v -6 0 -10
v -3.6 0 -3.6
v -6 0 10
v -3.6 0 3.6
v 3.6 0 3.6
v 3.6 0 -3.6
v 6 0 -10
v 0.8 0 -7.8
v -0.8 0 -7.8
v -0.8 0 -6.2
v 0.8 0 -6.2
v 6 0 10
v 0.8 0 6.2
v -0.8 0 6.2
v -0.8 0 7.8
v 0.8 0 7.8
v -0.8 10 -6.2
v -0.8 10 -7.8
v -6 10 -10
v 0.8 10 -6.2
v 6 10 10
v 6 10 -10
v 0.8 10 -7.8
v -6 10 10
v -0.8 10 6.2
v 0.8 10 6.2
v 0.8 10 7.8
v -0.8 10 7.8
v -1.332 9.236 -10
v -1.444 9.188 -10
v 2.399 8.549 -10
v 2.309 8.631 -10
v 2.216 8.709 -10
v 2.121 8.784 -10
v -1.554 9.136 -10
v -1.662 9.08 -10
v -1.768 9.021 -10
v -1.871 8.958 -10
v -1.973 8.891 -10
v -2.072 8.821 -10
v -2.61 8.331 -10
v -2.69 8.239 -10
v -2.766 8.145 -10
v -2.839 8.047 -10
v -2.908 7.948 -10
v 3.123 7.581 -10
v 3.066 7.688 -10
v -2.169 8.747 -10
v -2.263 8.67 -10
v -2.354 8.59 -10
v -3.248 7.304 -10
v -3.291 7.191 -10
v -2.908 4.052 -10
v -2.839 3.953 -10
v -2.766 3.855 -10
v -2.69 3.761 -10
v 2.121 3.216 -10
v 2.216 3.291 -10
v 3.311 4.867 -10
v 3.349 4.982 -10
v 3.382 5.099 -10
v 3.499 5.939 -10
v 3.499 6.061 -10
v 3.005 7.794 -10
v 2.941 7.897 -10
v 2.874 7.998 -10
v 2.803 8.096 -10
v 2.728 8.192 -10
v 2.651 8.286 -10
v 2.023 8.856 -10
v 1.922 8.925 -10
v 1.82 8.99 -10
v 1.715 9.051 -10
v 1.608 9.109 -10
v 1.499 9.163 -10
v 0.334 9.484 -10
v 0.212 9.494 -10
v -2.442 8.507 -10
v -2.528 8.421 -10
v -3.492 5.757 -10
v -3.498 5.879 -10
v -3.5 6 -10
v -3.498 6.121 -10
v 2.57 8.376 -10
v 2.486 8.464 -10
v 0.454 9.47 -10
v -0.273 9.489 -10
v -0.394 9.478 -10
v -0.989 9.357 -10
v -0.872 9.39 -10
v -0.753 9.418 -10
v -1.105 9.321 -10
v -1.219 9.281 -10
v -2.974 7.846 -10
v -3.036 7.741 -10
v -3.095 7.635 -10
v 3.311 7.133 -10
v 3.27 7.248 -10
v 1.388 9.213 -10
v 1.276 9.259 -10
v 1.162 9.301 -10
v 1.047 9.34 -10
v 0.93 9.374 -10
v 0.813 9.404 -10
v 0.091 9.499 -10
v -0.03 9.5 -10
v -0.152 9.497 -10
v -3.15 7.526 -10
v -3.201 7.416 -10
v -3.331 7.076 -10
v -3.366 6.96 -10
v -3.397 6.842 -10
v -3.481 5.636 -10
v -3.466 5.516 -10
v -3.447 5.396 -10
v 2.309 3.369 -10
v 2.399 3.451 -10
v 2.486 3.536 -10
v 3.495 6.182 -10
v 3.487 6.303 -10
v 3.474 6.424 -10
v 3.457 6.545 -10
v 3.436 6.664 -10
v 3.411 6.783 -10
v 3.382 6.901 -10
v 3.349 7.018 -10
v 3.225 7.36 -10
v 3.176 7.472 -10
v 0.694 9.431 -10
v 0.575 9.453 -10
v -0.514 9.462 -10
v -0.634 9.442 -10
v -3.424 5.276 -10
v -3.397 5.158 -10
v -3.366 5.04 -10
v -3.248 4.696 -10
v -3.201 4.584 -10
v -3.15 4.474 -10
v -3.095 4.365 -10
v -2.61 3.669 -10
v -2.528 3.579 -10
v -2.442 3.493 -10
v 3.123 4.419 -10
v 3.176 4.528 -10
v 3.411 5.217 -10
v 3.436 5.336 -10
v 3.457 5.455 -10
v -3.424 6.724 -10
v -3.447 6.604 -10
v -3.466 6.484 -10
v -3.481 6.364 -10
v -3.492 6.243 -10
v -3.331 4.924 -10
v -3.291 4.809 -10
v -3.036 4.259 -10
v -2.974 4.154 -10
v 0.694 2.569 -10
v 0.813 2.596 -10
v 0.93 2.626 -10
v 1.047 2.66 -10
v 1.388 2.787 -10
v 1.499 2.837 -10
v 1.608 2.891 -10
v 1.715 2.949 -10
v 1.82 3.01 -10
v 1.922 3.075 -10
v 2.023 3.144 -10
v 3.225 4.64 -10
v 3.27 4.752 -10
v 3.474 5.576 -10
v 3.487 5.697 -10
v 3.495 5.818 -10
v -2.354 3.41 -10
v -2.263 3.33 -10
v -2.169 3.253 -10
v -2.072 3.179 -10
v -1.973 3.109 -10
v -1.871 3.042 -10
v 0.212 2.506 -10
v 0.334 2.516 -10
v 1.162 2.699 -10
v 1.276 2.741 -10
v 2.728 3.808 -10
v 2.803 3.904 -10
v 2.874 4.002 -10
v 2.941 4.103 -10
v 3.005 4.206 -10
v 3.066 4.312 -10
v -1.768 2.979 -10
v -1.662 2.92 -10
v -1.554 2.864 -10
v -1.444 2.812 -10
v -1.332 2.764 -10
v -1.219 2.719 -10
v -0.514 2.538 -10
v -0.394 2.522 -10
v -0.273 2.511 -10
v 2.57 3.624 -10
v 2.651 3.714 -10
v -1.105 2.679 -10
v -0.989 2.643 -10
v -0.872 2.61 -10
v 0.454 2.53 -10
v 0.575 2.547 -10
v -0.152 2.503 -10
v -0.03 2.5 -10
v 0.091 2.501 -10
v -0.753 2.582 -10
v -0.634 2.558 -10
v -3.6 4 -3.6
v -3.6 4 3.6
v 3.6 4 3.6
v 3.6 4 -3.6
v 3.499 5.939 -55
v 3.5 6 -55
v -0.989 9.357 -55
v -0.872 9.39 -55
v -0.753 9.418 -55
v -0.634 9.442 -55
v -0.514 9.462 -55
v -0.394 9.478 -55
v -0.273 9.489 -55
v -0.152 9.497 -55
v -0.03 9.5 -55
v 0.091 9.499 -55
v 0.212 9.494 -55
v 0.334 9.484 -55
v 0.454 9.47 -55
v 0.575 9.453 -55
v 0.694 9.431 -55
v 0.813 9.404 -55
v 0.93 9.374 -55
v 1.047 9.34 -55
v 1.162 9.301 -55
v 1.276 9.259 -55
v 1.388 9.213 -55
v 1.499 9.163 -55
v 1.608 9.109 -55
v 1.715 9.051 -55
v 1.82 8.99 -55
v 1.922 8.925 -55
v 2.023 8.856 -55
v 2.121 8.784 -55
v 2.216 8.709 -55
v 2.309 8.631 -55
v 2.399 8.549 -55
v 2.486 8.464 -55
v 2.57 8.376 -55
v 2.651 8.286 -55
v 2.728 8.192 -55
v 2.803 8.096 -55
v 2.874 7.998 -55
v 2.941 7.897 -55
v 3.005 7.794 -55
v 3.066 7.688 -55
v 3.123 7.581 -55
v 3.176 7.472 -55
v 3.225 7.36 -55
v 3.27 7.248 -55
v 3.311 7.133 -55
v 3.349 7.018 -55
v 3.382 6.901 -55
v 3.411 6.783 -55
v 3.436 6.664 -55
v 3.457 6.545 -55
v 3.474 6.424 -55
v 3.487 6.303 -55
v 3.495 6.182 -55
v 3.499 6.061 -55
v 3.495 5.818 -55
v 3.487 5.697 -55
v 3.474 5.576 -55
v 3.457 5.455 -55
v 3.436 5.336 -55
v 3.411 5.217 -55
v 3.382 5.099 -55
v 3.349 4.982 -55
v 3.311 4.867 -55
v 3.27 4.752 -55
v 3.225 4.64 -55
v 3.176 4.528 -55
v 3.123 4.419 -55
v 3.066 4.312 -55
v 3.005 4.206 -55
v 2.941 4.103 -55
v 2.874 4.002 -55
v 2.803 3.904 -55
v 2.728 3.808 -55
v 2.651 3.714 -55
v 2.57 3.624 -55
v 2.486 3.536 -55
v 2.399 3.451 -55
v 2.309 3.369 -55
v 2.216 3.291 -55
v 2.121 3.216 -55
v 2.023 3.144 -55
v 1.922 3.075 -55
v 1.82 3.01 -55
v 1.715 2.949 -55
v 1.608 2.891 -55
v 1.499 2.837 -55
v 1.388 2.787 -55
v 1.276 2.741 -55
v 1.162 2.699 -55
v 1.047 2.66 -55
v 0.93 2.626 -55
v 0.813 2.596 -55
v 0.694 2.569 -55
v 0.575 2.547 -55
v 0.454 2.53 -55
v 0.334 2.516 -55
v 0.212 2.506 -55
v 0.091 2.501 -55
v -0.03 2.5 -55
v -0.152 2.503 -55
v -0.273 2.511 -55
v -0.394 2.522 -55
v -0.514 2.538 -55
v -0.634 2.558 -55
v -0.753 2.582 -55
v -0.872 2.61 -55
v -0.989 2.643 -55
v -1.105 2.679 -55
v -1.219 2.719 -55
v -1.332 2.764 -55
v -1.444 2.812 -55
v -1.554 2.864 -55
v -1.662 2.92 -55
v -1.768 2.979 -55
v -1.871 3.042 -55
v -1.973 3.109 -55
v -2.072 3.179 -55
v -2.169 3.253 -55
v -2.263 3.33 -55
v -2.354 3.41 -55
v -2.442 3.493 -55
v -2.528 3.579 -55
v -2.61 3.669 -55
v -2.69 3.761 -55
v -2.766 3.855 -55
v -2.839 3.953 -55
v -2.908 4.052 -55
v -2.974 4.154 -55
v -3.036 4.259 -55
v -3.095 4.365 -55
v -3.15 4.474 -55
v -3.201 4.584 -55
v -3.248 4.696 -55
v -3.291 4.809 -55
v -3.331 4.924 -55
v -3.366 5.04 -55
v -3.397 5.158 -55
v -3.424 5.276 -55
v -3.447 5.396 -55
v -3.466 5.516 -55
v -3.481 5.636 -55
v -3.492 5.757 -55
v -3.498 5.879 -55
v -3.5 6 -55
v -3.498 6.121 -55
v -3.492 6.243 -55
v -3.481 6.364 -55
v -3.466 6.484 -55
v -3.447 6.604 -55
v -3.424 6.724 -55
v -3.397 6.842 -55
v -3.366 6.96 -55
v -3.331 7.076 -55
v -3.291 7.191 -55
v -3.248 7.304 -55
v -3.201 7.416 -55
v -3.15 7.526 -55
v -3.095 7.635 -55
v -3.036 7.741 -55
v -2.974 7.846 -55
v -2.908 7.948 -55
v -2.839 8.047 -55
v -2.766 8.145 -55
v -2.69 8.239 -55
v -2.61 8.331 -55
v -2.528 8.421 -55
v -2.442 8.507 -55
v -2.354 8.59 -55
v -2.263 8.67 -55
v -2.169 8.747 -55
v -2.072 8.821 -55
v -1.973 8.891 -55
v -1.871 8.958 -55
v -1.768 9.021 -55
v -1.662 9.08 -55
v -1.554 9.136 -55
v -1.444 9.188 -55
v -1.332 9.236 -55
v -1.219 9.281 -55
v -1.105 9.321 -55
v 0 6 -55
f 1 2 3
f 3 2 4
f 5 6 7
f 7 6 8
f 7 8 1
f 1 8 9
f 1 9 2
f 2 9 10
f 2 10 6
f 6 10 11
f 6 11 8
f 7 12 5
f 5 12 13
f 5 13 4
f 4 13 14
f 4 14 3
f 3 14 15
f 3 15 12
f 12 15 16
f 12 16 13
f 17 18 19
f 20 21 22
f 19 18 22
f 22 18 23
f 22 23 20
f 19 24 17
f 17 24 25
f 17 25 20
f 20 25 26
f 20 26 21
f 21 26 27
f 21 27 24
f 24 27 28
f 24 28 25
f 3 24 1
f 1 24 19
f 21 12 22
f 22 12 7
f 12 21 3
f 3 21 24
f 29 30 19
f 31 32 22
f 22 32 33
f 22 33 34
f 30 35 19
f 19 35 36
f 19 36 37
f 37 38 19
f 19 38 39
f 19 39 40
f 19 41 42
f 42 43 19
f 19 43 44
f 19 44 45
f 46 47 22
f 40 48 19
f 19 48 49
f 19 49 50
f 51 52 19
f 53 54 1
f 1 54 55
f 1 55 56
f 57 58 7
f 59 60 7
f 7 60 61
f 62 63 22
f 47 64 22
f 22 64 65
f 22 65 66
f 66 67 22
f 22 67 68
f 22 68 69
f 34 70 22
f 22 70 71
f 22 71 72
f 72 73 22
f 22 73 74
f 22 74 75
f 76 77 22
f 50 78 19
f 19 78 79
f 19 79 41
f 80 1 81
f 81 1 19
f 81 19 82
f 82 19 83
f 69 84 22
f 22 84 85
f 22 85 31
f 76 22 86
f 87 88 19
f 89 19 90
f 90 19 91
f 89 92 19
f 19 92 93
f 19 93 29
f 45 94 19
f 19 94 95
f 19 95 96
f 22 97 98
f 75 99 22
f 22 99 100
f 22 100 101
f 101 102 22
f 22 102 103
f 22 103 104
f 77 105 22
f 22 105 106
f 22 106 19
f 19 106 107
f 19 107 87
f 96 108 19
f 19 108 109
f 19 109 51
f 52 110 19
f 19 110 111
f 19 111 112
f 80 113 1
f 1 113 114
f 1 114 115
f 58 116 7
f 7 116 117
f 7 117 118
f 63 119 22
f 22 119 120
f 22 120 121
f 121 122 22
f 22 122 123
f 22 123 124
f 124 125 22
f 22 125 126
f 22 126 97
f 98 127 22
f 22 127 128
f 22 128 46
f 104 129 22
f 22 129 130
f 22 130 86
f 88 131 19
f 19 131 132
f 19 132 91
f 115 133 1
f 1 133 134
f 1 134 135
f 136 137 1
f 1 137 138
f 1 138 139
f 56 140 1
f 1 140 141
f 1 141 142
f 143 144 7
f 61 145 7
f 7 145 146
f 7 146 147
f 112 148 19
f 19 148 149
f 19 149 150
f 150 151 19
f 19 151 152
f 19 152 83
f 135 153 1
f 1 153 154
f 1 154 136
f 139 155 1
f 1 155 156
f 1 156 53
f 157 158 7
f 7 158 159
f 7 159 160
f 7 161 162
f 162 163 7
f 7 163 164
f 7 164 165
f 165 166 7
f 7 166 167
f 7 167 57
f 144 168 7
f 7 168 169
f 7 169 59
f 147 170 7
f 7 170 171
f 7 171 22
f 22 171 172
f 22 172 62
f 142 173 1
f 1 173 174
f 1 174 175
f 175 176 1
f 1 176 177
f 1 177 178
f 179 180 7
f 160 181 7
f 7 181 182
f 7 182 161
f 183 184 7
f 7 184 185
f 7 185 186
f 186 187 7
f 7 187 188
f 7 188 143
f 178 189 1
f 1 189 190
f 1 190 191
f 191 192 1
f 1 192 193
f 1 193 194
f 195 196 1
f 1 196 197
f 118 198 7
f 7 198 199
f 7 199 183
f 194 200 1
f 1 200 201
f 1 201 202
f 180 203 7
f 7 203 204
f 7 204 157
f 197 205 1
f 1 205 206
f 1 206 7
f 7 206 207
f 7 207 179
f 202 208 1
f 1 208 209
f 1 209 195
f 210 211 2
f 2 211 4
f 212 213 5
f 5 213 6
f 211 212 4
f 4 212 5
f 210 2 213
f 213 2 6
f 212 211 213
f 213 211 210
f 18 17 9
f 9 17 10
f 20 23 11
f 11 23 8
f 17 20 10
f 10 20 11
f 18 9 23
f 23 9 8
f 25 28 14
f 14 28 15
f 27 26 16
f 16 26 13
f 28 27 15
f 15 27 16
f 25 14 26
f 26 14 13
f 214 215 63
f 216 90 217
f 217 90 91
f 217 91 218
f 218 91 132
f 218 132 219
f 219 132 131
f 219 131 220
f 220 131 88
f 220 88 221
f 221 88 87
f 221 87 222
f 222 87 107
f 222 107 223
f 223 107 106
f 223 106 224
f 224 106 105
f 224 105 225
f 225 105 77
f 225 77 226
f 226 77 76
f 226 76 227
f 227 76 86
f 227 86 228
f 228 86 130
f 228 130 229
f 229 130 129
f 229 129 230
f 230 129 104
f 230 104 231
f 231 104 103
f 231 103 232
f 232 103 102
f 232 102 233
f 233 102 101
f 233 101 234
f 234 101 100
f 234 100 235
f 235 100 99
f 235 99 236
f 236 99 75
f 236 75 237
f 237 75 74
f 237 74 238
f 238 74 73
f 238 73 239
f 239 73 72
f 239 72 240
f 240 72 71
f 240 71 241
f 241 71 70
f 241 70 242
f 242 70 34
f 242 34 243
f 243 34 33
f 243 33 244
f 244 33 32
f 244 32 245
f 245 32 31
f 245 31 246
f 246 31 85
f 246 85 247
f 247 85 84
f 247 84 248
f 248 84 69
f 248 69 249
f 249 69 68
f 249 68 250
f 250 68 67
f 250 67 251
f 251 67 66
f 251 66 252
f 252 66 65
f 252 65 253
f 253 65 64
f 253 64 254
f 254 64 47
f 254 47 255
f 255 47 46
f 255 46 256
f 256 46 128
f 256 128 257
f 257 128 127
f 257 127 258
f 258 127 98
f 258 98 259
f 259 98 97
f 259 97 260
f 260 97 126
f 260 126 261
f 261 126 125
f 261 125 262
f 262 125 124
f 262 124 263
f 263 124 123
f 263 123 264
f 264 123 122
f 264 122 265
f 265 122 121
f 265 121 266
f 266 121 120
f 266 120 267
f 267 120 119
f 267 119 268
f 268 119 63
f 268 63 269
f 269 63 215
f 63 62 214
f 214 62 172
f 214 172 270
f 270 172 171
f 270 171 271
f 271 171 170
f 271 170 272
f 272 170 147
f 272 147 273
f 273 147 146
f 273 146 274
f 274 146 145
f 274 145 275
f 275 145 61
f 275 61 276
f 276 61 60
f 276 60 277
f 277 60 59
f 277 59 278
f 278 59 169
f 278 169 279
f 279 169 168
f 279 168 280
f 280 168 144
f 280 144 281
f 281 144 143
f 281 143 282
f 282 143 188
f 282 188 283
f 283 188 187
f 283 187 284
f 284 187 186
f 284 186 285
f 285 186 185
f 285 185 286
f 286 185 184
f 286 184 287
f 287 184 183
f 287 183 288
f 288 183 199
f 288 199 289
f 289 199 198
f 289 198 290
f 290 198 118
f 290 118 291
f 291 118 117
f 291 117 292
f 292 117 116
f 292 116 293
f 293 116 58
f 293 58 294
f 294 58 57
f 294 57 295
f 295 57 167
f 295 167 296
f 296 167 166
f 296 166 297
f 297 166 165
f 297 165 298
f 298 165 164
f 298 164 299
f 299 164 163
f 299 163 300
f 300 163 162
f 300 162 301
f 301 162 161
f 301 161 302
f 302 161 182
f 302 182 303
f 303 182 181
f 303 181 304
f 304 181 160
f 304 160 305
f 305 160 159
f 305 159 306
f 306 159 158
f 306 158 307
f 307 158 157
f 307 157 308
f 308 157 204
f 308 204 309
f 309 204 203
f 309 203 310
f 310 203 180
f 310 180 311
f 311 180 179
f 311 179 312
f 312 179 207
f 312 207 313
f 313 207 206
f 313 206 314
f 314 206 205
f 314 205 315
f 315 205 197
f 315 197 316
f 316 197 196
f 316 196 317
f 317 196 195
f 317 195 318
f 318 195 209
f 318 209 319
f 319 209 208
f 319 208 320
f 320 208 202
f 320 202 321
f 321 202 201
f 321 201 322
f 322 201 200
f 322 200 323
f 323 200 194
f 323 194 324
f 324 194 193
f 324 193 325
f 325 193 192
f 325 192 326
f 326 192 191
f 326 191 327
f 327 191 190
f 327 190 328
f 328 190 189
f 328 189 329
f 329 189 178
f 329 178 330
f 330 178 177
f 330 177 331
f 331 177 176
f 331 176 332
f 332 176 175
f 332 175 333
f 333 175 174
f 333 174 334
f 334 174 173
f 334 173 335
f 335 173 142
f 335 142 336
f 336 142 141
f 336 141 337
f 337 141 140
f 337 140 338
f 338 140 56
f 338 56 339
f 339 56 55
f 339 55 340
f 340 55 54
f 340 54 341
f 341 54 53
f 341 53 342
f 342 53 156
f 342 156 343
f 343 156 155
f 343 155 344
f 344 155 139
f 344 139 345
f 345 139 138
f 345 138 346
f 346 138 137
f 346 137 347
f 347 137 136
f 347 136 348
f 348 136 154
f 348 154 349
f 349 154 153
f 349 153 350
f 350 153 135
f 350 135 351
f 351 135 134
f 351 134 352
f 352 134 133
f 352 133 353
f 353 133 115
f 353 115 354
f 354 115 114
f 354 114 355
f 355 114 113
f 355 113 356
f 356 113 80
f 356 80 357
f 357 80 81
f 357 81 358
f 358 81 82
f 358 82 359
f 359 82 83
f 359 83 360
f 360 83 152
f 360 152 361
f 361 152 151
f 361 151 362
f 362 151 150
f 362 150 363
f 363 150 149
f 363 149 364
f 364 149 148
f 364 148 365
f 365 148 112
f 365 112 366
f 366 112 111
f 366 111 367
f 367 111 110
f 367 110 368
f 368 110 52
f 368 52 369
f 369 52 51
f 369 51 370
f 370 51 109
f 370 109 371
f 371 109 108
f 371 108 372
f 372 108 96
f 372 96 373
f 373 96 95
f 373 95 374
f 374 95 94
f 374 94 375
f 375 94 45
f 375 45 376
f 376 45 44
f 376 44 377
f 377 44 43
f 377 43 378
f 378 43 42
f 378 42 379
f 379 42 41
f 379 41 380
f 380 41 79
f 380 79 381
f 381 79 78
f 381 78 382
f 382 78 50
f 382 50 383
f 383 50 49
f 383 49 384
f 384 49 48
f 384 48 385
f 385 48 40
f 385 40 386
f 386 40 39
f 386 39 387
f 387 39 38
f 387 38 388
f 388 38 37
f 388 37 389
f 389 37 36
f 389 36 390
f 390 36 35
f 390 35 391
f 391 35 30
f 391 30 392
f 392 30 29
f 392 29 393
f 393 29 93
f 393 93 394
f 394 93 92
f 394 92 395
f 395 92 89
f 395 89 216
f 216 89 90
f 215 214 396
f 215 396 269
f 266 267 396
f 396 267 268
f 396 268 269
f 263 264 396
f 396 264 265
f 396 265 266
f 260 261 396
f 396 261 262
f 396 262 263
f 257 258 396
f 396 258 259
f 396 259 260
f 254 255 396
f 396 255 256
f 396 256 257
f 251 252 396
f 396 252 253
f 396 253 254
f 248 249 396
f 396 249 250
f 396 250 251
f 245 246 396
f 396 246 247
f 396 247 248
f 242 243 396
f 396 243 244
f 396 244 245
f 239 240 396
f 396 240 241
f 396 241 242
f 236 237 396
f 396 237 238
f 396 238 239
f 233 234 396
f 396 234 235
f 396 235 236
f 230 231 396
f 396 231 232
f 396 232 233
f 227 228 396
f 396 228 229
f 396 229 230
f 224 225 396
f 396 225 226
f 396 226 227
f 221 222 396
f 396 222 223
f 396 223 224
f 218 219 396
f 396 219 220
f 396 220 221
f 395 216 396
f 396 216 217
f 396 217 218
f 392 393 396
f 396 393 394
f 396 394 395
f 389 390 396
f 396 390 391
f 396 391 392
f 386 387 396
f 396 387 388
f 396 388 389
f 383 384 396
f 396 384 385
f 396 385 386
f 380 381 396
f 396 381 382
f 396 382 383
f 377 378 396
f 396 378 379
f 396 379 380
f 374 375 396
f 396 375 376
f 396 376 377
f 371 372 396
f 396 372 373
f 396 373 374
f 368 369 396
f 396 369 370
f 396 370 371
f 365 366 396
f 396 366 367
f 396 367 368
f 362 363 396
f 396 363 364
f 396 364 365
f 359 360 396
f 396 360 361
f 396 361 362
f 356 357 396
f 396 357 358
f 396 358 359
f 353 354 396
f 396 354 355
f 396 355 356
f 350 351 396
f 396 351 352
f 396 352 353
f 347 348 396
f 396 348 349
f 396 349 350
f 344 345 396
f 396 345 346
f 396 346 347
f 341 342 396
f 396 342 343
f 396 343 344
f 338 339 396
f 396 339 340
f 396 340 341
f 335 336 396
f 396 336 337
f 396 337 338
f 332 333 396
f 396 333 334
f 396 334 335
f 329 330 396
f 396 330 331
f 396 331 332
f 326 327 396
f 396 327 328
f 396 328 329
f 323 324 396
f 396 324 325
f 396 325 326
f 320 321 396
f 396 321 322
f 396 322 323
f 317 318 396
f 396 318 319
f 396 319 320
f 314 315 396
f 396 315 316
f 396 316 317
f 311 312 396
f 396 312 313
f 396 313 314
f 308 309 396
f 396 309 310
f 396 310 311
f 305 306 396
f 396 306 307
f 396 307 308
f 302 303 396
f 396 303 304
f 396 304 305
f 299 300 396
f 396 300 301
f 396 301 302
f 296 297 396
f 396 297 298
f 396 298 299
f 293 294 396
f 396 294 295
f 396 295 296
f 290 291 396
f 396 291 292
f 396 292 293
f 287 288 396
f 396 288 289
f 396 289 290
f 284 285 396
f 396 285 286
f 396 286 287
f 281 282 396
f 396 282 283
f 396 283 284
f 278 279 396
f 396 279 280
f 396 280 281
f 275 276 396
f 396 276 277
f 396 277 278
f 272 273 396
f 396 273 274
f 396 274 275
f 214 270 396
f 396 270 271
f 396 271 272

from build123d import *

# Parameters (mm, degrees)
BOSS_EXTRUDE1_START = -10
SKETCH1_W           = 12
SKETCH1_H           = 10
BOSS_EXTRUDE1_DEPTH = 20
BOSS_EXTRUDE2_START = -3.6
SKETCH2_W           = 7.2
SKETCH2_H           = 5
BOSS_EXTRUDE2_DEPTH = 7.2
BOSS_EXTRUDE3_START = -7.8
SKETCH3_W           = 1.6
SKETCH3_H           = 12
BOSS_EXTRUDE3_DEPTH = 1.6
BOSS_EXTRUDE4_START = 6.2
SKETCH4_W           = 1.6
SKETCH4_H           = 12
BOSS_EXTRUDE4_DEPTH = 1.6
BOSS_EXTRUDE5_START = -55
SKETCH5_R           = 3.5
BOSS_EXTRUDE5_DEPTH = 46


with BuildPart() as part:
    # Sketch1 → Boss-Extrude1 (new body)
    with BuildSketch(Plane.XY.offset(BOSS_EXTRUDE1_START)):
        with Locations((0, 5)):
            Rectangle(SKETCH1_W, SKETCH1_H)
    extrude(amount=BOSS_EXTRUDE1_DEPTH)


with BuildPart() as body_2:
    # Sketch2 → Boss-Extrude2 (new body)
    with BuildSketch(Plane.XY.offset(BOSS_EXTRUDE2_START)):
        with Locations((0, 1.5)):
            Rectangle(SKETCH2_W, SKETCH2_H)
    extrude(amount=BOSS_EXTRUDE2_DEPTH)


with BuildPart() as part_1:
    add(part.part)

    # Combine1: cut body 2
    add(body_2.part, mode=Mode.SUBTRACT)


with BuildPart() as body_2_2:
    # Sketch3 → Boss-Extrude3 (new body)
    with BuildSketch(Plane.XY.offset(BOSS_EXTRUDE3_START)):
        with Locations((0, 5)):
            Rectangle(SKETCH3_W, SKETCH3_H)
    extrude(amount=BOSS_EXTRUDE3_DEPTH)


with BuildPart() as part_2:
    add(part_1.part)

    # Combine2: cut body 2 2
    add(body_2_2.part, mode=Mode.SUBTRACT)


with BuildPart() as body_2_3:
    # Sketch4 → Boss-Extrude4 (new body)
    with BuildSketch(Plane.XY.offset(BOSS_EXTRUDE4_START)):
        with Locations((0, 5)):
            Rectangle(SKETCH4_W, SKETCH4_H)
    extrude(amount=BOSS_EXTRUDE4_DEPTH)


with BuildPart() as part_3:
    add(part_2.part)

    # Combine3: cut body 2 3
    add(body_2_3.part, mode=Mode.SUBTRACT)

    # Sketch5 → Boss-Extrude5 (add)
    with BuildSketch(Plane.XY.offset(BOSS_EXTRUDE5_START)):
        with Locations((0, 6)):
            Circle(SKETCH5_R)
    extrude(amount=BOSS_EXTRUDE5_DEPTH)


solid = part_3.part
